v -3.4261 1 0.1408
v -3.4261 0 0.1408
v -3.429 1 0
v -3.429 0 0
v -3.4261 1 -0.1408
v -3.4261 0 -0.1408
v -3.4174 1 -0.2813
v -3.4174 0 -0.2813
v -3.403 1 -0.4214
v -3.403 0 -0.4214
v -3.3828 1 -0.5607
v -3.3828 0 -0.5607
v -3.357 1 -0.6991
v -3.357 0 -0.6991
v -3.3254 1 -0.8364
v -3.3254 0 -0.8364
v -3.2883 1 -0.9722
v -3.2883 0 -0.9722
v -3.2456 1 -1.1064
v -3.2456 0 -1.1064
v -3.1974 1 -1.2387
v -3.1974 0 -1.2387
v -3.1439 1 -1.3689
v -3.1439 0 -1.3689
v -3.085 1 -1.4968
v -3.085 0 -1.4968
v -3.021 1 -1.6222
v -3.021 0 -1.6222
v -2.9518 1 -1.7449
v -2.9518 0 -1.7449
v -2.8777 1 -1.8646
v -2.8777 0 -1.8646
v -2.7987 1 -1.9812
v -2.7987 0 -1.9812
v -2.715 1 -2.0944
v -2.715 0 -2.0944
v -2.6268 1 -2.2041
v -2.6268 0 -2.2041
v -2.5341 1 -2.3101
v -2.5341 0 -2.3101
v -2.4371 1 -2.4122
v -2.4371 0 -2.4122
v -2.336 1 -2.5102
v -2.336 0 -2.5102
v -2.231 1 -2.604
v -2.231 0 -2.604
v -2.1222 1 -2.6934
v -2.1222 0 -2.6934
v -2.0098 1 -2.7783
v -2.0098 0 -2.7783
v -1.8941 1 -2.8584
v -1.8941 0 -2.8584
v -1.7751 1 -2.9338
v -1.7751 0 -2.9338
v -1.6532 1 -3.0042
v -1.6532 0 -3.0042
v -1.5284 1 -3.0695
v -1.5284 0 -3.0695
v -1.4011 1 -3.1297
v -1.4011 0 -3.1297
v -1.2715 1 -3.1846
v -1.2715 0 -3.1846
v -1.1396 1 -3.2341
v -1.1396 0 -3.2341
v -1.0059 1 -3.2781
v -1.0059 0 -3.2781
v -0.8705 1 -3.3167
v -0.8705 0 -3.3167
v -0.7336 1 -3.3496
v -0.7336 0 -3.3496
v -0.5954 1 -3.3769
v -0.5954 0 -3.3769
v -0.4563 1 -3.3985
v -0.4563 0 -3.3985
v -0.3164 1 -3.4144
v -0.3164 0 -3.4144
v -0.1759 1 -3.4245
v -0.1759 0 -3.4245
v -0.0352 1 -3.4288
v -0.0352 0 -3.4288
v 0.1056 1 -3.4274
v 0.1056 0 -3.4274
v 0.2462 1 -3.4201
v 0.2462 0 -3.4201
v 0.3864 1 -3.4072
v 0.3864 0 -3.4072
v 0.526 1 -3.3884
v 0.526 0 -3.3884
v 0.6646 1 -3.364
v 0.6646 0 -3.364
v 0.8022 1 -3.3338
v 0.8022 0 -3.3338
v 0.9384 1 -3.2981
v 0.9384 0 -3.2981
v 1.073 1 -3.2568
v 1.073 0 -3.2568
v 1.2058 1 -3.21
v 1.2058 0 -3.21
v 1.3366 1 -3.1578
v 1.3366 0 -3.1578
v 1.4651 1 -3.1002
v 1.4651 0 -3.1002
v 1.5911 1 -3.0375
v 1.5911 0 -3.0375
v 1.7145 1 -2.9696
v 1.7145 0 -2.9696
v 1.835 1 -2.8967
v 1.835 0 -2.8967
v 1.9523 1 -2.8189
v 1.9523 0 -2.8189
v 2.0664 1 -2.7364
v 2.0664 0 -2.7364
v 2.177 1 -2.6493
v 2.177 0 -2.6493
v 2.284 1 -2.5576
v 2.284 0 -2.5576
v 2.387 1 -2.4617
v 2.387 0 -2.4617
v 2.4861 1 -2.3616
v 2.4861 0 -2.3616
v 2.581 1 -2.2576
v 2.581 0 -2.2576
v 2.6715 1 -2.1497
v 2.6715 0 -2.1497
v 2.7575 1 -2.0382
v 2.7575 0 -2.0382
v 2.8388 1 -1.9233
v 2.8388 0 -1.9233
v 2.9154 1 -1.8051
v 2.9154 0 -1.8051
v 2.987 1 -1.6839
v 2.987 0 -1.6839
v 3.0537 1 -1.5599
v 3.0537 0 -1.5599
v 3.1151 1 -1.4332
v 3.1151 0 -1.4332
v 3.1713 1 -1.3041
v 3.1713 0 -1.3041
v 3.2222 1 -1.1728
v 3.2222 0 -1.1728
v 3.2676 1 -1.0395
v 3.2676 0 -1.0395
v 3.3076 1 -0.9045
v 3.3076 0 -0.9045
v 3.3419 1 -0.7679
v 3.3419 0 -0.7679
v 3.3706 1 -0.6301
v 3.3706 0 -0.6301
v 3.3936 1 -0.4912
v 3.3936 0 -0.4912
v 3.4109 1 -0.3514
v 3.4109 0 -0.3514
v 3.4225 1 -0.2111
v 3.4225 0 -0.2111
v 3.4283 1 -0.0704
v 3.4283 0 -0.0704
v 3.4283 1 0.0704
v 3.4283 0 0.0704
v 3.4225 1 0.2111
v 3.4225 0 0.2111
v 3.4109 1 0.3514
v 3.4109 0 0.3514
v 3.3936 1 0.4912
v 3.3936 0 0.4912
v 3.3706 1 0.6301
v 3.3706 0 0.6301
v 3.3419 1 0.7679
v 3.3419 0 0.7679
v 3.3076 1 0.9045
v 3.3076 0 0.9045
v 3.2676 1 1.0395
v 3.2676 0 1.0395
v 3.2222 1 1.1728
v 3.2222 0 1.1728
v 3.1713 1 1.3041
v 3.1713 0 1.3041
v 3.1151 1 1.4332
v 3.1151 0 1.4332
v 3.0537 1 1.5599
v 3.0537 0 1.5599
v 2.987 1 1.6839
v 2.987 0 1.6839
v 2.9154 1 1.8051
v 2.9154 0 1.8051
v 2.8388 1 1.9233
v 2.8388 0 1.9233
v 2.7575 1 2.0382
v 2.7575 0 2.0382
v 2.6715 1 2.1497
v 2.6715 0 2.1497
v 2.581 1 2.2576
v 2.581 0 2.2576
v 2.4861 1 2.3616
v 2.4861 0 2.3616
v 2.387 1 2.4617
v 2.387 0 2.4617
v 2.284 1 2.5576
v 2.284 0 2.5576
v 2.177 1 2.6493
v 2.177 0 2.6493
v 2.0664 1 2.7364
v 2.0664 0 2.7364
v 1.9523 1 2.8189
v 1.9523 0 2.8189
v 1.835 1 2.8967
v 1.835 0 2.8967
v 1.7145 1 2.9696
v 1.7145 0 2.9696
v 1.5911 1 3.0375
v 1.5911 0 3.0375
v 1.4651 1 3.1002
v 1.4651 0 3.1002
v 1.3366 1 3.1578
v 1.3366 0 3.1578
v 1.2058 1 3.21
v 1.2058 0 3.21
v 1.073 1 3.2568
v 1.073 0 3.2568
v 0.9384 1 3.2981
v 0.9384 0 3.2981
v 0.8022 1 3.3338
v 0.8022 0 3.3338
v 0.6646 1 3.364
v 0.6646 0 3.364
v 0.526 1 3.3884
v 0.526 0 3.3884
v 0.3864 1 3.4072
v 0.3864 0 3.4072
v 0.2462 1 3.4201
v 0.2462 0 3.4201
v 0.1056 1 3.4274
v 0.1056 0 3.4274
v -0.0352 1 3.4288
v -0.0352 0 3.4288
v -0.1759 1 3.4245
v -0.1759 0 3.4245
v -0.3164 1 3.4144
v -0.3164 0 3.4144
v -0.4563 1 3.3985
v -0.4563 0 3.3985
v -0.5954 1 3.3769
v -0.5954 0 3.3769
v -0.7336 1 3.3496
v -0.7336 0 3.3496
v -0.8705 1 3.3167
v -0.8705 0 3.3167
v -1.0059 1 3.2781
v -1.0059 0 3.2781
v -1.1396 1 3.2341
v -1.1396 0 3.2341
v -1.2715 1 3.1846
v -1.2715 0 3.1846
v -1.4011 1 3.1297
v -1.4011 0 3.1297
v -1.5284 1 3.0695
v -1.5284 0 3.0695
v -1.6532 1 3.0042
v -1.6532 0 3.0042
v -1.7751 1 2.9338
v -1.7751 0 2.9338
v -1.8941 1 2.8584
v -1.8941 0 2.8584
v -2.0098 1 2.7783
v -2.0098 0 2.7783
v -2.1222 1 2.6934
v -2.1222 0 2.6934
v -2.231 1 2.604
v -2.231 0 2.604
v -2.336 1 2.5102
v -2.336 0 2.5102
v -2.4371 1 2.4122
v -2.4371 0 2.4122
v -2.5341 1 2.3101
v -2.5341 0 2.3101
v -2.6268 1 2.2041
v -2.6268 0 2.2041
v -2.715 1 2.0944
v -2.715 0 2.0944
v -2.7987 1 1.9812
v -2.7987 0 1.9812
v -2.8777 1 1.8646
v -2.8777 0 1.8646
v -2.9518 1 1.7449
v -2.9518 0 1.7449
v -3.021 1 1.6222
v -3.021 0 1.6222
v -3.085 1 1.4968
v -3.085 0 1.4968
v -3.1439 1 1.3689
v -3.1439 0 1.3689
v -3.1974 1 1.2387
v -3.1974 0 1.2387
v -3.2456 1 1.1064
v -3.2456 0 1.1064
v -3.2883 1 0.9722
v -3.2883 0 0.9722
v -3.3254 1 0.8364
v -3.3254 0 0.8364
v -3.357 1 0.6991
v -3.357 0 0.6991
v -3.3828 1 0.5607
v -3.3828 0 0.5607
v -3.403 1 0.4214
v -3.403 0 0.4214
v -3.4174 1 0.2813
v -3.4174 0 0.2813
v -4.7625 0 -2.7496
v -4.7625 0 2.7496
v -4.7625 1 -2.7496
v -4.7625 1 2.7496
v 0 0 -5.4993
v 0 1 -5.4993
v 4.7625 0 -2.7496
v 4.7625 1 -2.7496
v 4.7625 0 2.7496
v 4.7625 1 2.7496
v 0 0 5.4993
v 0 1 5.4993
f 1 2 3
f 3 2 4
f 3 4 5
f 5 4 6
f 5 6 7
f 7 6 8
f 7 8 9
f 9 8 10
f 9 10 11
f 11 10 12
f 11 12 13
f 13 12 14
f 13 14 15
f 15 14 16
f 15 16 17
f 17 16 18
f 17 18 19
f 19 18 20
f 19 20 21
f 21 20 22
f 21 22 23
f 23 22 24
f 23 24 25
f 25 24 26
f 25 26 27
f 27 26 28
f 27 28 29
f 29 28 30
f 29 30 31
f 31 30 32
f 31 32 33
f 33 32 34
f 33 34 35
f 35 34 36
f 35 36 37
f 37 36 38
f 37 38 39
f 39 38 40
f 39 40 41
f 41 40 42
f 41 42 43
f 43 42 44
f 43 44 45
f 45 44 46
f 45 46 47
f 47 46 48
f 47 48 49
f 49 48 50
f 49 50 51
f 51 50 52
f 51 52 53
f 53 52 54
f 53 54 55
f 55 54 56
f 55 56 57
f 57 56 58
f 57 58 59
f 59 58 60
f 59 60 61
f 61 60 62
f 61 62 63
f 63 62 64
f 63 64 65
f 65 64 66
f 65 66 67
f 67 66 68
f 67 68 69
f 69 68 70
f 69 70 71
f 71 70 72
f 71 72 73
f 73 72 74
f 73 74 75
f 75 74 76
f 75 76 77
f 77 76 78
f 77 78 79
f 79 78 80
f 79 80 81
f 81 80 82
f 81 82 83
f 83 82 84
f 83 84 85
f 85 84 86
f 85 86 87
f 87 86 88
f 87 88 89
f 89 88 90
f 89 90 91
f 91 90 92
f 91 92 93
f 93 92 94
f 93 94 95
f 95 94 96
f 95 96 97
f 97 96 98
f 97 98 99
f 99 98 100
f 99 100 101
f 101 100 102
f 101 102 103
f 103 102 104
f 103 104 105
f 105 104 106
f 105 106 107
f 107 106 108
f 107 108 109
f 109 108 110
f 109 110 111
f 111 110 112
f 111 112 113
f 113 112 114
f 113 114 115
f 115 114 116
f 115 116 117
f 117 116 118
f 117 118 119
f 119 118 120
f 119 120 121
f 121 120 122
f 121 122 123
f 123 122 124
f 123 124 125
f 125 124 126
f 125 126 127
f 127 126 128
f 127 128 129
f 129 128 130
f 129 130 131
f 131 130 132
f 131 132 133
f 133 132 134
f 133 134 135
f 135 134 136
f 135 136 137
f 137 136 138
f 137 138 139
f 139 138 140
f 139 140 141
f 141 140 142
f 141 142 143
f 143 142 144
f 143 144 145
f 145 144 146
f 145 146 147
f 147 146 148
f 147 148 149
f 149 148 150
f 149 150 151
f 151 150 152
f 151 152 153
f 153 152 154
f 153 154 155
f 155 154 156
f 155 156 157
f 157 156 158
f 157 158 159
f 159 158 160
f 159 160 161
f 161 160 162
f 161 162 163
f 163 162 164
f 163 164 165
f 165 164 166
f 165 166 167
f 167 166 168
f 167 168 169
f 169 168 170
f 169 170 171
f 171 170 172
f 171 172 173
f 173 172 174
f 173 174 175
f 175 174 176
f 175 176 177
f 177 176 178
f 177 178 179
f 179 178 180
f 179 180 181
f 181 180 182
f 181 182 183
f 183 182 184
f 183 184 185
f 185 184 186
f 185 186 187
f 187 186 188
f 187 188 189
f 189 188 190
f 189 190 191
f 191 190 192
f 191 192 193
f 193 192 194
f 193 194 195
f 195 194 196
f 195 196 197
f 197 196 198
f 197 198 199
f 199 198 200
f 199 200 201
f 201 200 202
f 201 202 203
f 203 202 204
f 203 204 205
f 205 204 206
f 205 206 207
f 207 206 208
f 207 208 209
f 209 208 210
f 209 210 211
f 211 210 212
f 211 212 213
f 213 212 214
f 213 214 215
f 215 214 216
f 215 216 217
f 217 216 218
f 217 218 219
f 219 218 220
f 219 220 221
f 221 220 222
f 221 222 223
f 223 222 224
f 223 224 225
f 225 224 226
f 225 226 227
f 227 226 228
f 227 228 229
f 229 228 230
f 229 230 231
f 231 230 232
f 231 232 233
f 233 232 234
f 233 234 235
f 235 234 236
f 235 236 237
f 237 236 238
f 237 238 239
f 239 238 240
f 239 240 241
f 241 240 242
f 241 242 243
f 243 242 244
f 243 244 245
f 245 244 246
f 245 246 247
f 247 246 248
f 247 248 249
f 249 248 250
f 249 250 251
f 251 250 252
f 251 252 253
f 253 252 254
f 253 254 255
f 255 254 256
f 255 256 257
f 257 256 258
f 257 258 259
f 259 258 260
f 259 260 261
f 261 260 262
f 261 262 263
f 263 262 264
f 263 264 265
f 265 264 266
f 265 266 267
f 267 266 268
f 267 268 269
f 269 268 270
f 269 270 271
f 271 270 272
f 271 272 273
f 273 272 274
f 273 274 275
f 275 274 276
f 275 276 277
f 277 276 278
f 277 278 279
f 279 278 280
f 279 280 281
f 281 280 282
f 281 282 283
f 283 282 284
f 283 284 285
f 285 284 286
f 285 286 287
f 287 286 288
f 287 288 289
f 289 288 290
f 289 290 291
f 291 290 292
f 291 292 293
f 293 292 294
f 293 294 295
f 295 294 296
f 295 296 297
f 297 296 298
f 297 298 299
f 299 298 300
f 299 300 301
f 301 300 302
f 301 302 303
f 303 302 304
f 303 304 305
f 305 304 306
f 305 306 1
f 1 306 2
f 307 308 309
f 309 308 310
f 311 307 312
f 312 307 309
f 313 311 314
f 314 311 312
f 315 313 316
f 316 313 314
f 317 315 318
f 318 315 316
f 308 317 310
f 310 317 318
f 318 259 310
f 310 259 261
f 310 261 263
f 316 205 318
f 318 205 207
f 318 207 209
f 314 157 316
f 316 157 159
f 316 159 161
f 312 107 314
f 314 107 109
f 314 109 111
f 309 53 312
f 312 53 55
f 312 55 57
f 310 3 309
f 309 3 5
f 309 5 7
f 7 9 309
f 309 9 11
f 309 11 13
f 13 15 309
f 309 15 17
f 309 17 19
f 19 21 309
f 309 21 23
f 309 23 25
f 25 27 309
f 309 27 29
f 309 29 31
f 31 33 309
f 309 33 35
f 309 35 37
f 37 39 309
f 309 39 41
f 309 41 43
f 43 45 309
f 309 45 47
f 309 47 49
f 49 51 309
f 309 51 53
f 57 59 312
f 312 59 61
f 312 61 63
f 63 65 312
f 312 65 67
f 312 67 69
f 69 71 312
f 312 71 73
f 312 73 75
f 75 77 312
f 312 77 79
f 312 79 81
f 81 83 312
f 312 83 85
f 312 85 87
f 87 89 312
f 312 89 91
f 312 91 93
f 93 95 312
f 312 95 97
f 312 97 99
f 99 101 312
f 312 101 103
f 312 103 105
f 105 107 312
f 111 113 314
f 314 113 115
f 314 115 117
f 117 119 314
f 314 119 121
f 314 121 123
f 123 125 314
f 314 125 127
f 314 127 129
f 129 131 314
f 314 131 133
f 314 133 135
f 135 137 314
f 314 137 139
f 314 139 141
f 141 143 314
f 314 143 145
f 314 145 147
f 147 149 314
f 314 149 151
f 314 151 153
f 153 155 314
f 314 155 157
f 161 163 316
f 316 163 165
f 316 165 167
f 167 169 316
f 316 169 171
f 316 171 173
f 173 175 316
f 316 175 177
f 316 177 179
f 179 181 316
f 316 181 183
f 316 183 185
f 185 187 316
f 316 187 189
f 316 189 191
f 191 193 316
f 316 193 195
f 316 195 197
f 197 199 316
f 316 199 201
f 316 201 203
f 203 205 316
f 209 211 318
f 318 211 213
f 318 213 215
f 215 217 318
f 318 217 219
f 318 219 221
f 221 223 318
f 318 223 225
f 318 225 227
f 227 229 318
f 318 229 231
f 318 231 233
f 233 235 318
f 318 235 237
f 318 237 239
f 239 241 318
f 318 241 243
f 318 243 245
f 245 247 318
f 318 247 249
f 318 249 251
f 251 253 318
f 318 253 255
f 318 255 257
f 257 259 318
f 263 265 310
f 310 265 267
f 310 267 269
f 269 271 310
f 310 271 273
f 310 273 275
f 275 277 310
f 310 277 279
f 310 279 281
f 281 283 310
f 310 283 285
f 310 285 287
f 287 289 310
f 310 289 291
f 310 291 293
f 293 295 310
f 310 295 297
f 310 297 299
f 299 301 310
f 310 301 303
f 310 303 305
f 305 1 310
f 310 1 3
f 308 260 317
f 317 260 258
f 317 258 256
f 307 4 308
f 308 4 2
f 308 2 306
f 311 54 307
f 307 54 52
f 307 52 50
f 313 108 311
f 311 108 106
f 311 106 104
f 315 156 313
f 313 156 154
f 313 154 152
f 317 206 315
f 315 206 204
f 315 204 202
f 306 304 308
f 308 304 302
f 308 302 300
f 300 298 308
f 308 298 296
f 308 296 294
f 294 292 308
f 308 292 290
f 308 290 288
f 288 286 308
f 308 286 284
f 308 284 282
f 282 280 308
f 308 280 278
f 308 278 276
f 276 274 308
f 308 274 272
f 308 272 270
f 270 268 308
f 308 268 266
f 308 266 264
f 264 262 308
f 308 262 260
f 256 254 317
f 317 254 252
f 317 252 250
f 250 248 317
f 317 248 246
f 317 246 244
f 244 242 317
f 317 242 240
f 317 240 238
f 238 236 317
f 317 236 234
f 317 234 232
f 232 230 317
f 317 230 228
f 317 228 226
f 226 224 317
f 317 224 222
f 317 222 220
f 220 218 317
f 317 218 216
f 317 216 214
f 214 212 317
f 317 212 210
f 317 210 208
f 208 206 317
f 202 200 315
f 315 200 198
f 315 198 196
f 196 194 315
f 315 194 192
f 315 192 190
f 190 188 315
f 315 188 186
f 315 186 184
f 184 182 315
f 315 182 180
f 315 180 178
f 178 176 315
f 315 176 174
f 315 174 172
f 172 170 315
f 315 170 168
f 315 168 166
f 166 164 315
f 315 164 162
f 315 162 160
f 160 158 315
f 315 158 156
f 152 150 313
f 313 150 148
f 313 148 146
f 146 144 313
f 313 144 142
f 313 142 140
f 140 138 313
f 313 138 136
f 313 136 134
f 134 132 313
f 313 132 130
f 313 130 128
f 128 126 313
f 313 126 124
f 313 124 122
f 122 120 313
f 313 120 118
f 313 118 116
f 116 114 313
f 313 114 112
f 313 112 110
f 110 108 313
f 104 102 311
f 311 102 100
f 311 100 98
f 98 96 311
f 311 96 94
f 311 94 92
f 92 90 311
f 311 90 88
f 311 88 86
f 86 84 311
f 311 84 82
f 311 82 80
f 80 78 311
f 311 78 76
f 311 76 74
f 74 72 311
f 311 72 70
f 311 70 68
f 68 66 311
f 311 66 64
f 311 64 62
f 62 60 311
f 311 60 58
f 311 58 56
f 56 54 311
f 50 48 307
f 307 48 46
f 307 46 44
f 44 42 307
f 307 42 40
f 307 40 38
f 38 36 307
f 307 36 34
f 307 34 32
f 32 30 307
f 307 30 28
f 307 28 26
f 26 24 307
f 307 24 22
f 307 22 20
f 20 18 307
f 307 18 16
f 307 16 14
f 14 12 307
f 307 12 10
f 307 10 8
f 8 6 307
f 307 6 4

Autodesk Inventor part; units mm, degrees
ref_plane "YZ Plane" through (0, 0, 0) normal (1, 0, 0) x (0, 1, 0)
ref_plane "XZ Plane" through (0, 0, 0) normal (0, 1, 0) x (-1, 0, 0)
ref_plane "XY Plane" through (0, 0, 0) normal (0, 0, 1) x (1, 0, 0)
sketch "Sketch1" plane through (0, 0, 0) normal (0, 1, 0) x (-1, 0, 0)
  circle A0 centre (0, 0) radius 3.429
  line L0 (4.7625, -2.7496) -> (0, -5.4993)
  line L1 (0, -5.4993) -> (-4.7625, -2.7496)
  line L2 (-4.7625, -2.7496) -> (-4.7625, 2.7496)
  line L3 (-4.7625, 2.7496) -> (0, 5.4993)
  line L4 (0, 5.4993) -> (4.7625, 2.7496)
  line L5 (4.7625, 2.7496) -> (4.7625, -2.7496)
  line L6 (4.7625, 0) -> (0, 0) construction
  dimension "d0" = 6.858
  dimension "d1" = 9.525
extrude "Extrusion1" add sketch "Sketch1" along normal blind 1
properties part number "Spacer" material "UHMW, White"
